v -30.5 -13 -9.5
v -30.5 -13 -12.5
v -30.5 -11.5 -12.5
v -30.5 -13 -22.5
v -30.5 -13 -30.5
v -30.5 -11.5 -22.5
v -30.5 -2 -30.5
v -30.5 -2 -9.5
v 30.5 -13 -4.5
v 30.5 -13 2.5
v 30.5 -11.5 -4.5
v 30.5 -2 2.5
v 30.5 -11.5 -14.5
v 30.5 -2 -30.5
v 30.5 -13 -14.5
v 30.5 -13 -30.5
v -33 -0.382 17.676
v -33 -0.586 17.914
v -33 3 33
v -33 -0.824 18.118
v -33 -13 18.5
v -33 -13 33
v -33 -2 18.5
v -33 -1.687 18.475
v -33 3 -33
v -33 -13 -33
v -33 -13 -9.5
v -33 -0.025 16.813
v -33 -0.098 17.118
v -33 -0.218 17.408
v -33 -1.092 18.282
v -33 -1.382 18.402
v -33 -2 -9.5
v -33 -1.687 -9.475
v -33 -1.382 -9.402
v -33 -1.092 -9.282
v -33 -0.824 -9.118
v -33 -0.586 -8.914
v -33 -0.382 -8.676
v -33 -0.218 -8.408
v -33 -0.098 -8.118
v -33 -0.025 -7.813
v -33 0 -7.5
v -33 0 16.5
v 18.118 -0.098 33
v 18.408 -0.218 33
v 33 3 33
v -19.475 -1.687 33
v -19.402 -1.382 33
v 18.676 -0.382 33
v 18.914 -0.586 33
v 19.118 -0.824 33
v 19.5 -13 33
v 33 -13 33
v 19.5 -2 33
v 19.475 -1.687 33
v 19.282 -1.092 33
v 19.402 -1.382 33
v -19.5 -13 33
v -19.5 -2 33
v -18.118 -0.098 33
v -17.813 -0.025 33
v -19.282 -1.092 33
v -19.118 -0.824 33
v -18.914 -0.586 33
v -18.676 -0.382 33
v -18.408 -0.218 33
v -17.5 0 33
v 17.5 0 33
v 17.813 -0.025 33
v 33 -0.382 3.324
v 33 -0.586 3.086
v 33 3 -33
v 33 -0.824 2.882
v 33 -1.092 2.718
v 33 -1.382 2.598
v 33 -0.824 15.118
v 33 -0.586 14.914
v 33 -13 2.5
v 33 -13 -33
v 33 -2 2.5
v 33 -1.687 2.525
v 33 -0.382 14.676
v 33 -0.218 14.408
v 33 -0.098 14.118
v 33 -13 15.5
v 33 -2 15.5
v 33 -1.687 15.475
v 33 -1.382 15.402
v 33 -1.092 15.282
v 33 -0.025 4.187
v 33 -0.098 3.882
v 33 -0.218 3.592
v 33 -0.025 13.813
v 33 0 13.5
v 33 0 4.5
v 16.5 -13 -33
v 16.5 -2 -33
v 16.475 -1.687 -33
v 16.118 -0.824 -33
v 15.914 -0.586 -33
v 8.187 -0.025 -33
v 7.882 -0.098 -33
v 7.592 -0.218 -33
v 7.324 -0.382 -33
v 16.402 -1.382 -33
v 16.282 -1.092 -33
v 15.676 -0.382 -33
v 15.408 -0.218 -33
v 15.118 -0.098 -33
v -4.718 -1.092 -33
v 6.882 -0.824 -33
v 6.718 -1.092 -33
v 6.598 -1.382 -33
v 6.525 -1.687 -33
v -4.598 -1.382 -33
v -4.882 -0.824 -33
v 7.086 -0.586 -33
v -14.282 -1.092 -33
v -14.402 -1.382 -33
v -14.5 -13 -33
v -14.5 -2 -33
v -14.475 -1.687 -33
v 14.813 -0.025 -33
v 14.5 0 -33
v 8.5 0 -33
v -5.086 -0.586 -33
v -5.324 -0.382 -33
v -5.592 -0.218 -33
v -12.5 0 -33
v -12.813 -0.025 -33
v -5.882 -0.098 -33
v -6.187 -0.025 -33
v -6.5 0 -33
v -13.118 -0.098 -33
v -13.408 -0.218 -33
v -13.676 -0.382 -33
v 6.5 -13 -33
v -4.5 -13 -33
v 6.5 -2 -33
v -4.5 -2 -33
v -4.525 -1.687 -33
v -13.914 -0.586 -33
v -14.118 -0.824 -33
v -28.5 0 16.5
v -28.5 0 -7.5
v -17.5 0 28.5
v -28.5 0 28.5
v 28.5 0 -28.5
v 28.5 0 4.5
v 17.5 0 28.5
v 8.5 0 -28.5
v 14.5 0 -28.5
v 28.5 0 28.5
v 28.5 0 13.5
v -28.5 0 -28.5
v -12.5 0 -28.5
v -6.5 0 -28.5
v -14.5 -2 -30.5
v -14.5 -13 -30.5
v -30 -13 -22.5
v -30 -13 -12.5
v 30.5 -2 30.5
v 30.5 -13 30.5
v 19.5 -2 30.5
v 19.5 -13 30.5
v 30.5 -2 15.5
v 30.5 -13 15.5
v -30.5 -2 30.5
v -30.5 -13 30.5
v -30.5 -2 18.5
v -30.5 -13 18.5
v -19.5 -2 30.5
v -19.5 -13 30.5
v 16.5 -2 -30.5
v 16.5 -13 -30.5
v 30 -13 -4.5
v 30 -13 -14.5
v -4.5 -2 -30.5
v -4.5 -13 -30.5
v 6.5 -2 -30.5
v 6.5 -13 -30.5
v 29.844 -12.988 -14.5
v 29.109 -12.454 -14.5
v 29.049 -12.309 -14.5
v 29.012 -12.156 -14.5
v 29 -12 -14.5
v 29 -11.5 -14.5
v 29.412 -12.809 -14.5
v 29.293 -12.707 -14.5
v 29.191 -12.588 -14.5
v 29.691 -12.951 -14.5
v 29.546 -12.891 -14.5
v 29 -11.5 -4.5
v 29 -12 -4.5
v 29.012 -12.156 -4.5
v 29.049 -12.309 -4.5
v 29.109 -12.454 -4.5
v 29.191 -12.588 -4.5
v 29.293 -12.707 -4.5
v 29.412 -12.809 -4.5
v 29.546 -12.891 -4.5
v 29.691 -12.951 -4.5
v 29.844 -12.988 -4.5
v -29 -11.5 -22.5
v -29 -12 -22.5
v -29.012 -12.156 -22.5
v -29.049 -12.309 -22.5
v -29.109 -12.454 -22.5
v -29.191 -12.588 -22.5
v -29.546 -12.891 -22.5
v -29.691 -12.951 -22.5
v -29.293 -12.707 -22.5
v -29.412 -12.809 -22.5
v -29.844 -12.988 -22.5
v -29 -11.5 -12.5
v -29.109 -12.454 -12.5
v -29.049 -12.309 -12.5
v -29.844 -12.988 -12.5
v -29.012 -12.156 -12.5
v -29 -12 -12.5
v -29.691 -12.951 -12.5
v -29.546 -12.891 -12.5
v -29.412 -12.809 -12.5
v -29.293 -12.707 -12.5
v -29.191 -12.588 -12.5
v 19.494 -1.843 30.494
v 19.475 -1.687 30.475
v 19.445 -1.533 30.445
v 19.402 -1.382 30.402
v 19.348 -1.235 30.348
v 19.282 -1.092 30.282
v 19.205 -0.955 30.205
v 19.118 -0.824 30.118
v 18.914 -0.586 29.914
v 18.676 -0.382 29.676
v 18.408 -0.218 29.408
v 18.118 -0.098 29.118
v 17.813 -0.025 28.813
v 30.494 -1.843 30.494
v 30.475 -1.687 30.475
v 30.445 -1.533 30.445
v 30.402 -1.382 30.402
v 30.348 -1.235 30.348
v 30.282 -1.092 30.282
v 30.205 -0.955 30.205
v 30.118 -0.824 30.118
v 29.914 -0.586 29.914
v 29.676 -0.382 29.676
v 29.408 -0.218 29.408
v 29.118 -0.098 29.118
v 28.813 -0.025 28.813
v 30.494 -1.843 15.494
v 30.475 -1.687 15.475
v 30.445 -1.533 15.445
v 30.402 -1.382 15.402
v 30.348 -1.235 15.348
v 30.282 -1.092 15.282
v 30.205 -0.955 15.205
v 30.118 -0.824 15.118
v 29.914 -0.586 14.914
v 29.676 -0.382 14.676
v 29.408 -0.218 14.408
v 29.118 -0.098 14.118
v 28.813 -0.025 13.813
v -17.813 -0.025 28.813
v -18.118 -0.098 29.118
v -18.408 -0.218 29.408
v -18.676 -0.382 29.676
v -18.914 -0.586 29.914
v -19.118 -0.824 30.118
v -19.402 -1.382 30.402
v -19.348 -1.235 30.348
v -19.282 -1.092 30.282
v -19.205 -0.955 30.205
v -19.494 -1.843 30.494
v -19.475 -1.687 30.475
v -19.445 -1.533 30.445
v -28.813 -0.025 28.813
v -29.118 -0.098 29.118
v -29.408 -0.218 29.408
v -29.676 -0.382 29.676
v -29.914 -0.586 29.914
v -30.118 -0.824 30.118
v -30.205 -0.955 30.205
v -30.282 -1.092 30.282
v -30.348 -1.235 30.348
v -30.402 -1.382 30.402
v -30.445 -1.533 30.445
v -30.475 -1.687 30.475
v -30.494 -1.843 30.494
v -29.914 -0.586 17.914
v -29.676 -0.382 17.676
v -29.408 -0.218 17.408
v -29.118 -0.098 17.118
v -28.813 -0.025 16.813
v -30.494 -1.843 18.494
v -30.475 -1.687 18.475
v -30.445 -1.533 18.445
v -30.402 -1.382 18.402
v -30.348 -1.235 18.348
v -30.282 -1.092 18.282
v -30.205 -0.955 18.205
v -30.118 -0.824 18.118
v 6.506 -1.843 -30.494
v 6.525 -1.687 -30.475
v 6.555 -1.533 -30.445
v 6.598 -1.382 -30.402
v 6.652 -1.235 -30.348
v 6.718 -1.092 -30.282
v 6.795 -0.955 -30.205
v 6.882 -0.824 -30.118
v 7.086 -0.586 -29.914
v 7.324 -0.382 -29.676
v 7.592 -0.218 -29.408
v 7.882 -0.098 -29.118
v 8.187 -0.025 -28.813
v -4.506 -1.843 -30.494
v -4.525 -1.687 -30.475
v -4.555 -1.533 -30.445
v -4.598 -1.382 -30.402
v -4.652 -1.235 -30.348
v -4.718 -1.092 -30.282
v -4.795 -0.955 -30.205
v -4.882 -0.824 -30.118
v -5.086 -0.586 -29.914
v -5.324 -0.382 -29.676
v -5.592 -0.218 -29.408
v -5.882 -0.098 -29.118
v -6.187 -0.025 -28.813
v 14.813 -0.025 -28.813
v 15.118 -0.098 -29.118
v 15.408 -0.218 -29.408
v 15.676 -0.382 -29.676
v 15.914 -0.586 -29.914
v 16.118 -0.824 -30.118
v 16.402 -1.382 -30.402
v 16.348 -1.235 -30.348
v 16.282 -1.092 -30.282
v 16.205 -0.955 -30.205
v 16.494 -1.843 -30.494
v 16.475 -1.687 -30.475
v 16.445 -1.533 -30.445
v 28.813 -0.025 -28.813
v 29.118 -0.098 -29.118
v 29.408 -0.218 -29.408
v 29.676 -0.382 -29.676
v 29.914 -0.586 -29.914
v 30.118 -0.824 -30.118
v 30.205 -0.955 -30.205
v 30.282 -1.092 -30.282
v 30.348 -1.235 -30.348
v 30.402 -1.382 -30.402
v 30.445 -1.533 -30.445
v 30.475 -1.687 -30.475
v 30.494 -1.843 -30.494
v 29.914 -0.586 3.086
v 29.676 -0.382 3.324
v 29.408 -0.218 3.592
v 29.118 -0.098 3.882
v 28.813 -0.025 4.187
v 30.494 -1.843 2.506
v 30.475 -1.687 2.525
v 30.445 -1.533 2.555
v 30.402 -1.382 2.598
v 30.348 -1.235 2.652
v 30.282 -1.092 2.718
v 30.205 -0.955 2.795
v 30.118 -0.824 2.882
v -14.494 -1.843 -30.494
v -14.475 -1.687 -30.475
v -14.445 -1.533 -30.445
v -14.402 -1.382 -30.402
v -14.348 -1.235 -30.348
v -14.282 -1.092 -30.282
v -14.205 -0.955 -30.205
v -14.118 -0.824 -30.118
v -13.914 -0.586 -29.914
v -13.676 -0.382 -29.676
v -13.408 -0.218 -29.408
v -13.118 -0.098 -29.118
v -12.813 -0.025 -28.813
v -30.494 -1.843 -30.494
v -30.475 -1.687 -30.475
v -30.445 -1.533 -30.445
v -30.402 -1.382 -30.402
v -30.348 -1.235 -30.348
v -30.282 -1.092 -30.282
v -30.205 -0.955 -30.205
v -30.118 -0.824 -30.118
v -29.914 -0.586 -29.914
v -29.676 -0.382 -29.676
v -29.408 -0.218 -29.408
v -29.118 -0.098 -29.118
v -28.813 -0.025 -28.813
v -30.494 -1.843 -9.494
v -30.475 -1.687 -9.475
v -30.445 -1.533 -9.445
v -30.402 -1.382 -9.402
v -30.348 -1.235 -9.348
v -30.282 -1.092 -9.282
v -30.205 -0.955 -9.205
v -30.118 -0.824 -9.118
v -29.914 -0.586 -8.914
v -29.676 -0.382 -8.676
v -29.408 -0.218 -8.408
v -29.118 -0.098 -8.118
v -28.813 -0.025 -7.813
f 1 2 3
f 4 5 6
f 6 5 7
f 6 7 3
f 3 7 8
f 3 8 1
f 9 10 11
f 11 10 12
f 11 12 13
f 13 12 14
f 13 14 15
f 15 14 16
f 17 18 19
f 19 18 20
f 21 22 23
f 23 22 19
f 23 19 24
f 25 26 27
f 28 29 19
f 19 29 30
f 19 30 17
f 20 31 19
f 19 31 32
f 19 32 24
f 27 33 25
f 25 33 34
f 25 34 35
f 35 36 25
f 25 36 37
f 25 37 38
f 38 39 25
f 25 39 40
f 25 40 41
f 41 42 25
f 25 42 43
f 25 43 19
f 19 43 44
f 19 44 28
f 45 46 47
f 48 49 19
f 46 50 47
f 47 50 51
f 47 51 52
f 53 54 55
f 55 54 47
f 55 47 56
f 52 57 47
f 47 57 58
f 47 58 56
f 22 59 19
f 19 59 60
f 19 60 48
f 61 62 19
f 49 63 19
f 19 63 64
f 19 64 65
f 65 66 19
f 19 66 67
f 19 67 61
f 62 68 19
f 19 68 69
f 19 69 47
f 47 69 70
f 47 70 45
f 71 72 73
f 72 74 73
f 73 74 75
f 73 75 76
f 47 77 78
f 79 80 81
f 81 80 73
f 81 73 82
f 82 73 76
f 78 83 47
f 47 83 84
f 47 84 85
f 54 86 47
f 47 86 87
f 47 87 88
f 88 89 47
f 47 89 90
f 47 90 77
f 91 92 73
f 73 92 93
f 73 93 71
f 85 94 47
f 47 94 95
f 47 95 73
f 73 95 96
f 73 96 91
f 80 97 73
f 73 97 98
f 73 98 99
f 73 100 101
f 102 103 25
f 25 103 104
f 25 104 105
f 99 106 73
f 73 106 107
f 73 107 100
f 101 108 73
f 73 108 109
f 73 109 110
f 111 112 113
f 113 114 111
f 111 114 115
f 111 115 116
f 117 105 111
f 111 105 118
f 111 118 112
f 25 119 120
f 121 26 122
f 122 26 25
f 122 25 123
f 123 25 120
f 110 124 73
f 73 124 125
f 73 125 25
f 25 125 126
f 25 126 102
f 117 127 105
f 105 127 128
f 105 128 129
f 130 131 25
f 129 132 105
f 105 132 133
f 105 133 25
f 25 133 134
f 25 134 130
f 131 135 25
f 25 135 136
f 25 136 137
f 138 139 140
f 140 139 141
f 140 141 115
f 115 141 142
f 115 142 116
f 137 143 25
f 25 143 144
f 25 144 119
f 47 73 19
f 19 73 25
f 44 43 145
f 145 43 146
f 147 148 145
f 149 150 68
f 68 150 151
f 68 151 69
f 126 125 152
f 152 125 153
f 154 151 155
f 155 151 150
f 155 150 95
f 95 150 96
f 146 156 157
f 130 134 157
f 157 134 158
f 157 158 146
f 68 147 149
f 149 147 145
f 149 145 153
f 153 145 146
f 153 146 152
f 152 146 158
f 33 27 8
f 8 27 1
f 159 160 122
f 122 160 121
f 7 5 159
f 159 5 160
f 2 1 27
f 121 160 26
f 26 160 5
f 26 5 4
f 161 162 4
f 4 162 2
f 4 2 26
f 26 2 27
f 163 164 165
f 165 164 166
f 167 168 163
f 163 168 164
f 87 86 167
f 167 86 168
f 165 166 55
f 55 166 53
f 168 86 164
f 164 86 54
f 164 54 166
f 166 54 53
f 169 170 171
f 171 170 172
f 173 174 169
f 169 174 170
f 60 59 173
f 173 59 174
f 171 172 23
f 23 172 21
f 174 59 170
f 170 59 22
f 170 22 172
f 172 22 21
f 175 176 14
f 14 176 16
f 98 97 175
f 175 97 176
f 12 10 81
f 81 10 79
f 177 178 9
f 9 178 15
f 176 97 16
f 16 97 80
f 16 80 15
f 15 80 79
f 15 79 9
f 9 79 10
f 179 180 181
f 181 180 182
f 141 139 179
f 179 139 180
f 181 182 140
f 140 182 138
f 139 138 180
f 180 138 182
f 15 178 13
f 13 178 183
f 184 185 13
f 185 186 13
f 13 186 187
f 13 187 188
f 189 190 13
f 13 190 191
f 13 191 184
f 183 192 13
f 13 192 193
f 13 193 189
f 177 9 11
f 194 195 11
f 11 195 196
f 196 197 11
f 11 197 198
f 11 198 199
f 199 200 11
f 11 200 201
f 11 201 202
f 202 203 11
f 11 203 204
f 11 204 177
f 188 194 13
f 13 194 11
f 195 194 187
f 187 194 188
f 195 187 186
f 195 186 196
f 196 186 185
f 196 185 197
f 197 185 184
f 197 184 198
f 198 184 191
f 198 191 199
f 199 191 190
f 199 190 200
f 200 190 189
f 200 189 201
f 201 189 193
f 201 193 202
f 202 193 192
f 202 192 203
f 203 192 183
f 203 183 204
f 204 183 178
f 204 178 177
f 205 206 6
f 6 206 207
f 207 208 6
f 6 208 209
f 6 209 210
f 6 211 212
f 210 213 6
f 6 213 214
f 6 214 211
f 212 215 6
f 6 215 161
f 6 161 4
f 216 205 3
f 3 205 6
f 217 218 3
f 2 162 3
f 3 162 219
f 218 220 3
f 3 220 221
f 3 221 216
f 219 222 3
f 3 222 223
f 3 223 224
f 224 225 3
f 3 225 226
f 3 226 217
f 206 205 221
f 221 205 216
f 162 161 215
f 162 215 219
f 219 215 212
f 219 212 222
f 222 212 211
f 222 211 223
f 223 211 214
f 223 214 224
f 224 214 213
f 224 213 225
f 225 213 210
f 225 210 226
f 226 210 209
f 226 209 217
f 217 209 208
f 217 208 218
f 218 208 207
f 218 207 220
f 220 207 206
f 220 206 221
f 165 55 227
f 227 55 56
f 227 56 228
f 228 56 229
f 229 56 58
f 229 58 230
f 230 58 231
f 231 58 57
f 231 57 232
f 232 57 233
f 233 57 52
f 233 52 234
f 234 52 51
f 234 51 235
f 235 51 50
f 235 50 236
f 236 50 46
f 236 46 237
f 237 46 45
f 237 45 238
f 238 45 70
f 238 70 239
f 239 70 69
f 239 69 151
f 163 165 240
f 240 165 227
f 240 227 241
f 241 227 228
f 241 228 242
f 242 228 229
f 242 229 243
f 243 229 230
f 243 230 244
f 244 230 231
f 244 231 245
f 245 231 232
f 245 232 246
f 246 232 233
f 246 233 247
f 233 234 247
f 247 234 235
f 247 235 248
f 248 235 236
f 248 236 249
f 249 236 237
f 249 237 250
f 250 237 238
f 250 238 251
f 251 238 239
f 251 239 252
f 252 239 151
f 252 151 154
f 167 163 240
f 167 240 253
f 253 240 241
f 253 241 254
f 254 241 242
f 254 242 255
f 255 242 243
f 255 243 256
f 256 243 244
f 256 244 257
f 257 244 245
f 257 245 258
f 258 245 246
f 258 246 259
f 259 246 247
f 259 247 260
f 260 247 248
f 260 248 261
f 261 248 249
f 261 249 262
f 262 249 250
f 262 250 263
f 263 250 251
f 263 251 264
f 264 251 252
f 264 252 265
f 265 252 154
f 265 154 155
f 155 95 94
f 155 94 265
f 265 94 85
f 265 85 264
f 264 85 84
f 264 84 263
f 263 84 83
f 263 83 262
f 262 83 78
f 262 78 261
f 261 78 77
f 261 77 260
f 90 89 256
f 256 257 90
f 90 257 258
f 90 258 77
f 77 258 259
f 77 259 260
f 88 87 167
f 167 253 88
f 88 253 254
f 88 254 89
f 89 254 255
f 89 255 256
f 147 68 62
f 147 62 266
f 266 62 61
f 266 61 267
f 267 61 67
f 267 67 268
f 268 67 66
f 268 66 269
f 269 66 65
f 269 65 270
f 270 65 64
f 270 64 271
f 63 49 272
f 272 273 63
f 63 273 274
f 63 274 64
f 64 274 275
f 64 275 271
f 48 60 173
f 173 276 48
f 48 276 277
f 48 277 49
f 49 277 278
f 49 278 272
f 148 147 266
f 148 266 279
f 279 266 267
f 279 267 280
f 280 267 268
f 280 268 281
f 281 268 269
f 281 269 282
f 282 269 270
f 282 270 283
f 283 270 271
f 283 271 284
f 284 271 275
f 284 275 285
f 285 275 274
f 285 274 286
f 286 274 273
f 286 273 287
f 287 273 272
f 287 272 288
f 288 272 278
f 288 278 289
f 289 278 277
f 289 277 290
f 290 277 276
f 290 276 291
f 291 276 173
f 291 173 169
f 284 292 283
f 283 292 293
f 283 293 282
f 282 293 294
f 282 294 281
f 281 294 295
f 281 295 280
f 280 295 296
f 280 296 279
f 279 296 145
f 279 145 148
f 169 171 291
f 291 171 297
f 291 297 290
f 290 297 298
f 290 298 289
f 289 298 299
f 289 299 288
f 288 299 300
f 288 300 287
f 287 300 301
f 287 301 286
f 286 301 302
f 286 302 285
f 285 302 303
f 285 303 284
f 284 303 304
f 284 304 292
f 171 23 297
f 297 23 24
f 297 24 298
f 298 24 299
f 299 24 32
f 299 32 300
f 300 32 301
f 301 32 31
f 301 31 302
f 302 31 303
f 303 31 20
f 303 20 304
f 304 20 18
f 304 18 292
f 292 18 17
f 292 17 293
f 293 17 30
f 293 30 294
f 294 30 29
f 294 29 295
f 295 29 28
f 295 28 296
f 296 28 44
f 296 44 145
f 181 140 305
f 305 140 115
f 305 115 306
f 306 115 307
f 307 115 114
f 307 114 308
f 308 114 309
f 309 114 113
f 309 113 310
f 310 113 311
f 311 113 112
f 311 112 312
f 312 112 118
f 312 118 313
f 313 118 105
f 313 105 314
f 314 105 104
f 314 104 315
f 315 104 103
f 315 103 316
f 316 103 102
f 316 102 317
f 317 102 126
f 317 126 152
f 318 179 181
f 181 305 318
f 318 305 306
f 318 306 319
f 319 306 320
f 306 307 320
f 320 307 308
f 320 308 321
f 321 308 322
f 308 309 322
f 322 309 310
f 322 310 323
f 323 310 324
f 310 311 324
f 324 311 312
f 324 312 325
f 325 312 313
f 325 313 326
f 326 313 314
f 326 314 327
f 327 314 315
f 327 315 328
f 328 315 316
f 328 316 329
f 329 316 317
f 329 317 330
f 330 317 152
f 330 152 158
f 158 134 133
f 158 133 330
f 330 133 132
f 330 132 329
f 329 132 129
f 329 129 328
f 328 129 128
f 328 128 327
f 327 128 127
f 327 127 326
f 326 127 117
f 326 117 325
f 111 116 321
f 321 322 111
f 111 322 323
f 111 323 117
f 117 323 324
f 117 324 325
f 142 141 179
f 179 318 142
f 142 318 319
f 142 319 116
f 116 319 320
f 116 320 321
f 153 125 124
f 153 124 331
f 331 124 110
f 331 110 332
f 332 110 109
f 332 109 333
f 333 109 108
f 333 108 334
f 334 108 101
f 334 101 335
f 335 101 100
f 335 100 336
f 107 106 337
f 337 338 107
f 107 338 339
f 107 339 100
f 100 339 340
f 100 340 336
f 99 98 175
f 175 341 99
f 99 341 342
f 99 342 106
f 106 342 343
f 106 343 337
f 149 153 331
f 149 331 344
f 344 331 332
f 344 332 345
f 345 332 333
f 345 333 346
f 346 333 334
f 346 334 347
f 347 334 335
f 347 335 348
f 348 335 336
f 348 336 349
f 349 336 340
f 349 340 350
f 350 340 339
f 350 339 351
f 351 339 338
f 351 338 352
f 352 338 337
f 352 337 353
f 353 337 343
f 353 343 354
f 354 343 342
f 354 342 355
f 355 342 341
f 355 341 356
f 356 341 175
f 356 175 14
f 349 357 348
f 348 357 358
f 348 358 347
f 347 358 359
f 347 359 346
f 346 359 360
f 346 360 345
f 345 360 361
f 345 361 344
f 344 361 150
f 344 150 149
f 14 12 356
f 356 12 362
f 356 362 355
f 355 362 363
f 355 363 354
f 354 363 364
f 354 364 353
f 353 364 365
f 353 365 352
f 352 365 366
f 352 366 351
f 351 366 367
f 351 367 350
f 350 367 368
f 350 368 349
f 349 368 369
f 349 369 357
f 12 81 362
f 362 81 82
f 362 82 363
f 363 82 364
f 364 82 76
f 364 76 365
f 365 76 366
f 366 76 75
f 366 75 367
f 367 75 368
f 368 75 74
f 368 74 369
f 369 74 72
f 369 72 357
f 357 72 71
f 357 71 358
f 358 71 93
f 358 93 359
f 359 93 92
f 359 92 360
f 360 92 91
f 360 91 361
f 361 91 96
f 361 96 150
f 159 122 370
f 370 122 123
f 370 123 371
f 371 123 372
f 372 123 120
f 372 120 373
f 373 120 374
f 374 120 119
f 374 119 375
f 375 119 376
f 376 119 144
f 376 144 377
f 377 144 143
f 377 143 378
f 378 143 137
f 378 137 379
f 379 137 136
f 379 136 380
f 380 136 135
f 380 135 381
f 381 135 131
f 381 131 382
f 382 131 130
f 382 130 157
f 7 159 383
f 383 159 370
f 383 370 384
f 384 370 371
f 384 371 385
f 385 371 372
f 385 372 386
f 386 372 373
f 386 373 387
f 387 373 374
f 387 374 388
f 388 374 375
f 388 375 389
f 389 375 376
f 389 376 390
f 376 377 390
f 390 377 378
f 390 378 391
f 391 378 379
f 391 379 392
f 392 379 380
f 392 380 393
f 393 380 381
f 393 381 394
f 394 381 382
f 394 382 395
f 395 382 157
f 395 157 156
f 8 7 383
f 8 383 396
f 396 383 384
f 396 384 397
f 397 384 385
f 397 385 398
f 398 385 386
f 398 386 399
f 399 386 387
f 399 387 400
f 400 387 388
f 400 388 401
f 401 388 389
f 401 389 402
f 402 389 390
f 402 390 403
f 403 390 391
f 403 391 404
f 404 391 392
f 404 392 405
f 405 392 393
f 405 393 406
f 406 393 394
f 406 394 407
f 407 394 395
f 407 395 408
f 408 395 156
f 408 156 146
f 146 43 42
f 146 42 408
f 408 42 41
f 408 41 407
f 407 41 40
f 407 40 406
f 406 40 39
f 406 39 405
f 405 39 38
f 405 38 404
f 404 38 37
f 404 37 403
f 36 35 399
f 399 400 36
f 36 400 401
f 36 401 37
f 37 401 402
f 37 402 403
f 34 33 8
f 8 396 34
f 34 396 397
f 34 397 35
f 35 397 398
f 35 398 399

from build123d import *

# Parameters (mm, degrees)
SKETCH1_W           = 66
SKETCH1_H           = 66
BOSS_EXTRUDE1_DEPTH = 3
SKETCH2_W           = 11
SKETCH2_H           = 2.5
BOSS_EXTRUDE3_DEPTH = 13
SKETCH5_W           = 10
SKETCH5_H           = 1.5
BOSS_EXTRUDE4_DEPTH = 1.5
FILLET2_R           = 1
SKETCH6_W           = 10
SKETCH6_H           = 1.5
BOSS_EXTRUDE5_DEPTH = 1.5
FILLET3_R           = 1
FILLET4_R           = 2


with BuildPart() as part:
    # Sketch1 → Boss-Extrude1 (new body)
    with BuildSketch(Plane(origin=(0, 0, 0), x_dir=(1, 0, 0), z_dir=(0, 1, 0))):
        Rectangle(SKETCH1_W, SKETCH1_H)
    extrude(amount=BOSS_EXTRUDE1_DEPTH)

    # Sketch2 → Boss-Extrude3 (add)
    with BuildSketch(Plane(origin=(0, 0, 0), x_dir=(1, 0, 0), z_dir=(0, 1, 0))):
        Polygon((-30.5, 30.5), (-14.5, 30.5), (-14.5, 33), (-33, 33), (-33, 9.5), (-30.5, 9.5), align=None)
        Polygon((-30.5, -30.5), (-19.5, -30.5), (-19.5, -33), (-33, -33), (-33, -18.5), (-30.5, -18.5), align=None)
        Polygon((30.5, 30.5), (30.5, -2.5), (33, -2.5), (33, 33), (16.5, 33), (16.5, 30.5), align=None)
        with Locations((1, 31.75)):
            Rectangle(SKETCH2_W, SKETCH2_H)
        Polygon((30.5, -15.5), (33, -15.5), (33, -33), (19.5, -33), (19.5, -30.5), (30.5, -30.5), align=None)
    extrude(amount=-BOSS_EXTRUDE3_DEPTH)

    # Sketch5 → Boss-Extrude4 (add)
    with BuildSketch(Plane.ZY.offset(-30.5)):
        with Locations((-9.5, -12.25)):
            Rectangle(SKETCH5_W, SKETCH5_H)
    extrude(amount=BOSS_EXTRUDE4_DEPTH)

    # Fillet2
    fillet2_edges = [part.edges().sort_by_distance(p)[0] for p in [
        (29, -13, -9.5),
    ]]
    fillet(fillet2_edges, radius=FILLET2_R)

    # Sketch6 → Boss-Extrude5 (add)
    with BuildSketch(Plane(origin=(-30.5, 0, 0), x_dir=(0, 0, -1), z_dir=(1, 0, 0))):
        with Locations((17.5, -12.25)):
            Rectangle(SKETCH6_W, SKETCH6_H)
    extrude(amount=BOSS_EXTRUDE5_DEPTH)

    # Fillet3
    fillet3_edges = [part.edges().sort_by_distance(p)[0] for p in [
        (-29, -13, -17.5),
    ]]
    fillet(fillet3_edges, radius=FILLET3_R)

    # Fillet4
    fillet4_edges = [part.edges().sort_by_distance(p)[0] for p in [
        (31.75, 0, 15.5),
        (-31.75, 0, 18.5),
        (19.5, 0, 31.75),
        (-4.5, 0, -31.75),
        (31.75, 0, 2.5),
        (-19.5, 0, 31.75),
        (-31.75, 0, -9.5),
        (-14.5, 0, -31.75),
        (6.5, 0, -31.75),
        (16.5, 0, -31.75),
        (25, 0, 30.5),
        (-25, 0, 30.5),
        (-30.5, 0, 24.5),
        (30.5, 0, 23),
        (30.5, 0, -14),
        (23.5, 0, -30.5),
        (1, 0, -30.5),
        (-22.5, 0, -30.5),
        (-30.5, 0, -20),
    ]]
    fillet(fillet4_edges, radius=FILLET4_R)


solid = part.part
